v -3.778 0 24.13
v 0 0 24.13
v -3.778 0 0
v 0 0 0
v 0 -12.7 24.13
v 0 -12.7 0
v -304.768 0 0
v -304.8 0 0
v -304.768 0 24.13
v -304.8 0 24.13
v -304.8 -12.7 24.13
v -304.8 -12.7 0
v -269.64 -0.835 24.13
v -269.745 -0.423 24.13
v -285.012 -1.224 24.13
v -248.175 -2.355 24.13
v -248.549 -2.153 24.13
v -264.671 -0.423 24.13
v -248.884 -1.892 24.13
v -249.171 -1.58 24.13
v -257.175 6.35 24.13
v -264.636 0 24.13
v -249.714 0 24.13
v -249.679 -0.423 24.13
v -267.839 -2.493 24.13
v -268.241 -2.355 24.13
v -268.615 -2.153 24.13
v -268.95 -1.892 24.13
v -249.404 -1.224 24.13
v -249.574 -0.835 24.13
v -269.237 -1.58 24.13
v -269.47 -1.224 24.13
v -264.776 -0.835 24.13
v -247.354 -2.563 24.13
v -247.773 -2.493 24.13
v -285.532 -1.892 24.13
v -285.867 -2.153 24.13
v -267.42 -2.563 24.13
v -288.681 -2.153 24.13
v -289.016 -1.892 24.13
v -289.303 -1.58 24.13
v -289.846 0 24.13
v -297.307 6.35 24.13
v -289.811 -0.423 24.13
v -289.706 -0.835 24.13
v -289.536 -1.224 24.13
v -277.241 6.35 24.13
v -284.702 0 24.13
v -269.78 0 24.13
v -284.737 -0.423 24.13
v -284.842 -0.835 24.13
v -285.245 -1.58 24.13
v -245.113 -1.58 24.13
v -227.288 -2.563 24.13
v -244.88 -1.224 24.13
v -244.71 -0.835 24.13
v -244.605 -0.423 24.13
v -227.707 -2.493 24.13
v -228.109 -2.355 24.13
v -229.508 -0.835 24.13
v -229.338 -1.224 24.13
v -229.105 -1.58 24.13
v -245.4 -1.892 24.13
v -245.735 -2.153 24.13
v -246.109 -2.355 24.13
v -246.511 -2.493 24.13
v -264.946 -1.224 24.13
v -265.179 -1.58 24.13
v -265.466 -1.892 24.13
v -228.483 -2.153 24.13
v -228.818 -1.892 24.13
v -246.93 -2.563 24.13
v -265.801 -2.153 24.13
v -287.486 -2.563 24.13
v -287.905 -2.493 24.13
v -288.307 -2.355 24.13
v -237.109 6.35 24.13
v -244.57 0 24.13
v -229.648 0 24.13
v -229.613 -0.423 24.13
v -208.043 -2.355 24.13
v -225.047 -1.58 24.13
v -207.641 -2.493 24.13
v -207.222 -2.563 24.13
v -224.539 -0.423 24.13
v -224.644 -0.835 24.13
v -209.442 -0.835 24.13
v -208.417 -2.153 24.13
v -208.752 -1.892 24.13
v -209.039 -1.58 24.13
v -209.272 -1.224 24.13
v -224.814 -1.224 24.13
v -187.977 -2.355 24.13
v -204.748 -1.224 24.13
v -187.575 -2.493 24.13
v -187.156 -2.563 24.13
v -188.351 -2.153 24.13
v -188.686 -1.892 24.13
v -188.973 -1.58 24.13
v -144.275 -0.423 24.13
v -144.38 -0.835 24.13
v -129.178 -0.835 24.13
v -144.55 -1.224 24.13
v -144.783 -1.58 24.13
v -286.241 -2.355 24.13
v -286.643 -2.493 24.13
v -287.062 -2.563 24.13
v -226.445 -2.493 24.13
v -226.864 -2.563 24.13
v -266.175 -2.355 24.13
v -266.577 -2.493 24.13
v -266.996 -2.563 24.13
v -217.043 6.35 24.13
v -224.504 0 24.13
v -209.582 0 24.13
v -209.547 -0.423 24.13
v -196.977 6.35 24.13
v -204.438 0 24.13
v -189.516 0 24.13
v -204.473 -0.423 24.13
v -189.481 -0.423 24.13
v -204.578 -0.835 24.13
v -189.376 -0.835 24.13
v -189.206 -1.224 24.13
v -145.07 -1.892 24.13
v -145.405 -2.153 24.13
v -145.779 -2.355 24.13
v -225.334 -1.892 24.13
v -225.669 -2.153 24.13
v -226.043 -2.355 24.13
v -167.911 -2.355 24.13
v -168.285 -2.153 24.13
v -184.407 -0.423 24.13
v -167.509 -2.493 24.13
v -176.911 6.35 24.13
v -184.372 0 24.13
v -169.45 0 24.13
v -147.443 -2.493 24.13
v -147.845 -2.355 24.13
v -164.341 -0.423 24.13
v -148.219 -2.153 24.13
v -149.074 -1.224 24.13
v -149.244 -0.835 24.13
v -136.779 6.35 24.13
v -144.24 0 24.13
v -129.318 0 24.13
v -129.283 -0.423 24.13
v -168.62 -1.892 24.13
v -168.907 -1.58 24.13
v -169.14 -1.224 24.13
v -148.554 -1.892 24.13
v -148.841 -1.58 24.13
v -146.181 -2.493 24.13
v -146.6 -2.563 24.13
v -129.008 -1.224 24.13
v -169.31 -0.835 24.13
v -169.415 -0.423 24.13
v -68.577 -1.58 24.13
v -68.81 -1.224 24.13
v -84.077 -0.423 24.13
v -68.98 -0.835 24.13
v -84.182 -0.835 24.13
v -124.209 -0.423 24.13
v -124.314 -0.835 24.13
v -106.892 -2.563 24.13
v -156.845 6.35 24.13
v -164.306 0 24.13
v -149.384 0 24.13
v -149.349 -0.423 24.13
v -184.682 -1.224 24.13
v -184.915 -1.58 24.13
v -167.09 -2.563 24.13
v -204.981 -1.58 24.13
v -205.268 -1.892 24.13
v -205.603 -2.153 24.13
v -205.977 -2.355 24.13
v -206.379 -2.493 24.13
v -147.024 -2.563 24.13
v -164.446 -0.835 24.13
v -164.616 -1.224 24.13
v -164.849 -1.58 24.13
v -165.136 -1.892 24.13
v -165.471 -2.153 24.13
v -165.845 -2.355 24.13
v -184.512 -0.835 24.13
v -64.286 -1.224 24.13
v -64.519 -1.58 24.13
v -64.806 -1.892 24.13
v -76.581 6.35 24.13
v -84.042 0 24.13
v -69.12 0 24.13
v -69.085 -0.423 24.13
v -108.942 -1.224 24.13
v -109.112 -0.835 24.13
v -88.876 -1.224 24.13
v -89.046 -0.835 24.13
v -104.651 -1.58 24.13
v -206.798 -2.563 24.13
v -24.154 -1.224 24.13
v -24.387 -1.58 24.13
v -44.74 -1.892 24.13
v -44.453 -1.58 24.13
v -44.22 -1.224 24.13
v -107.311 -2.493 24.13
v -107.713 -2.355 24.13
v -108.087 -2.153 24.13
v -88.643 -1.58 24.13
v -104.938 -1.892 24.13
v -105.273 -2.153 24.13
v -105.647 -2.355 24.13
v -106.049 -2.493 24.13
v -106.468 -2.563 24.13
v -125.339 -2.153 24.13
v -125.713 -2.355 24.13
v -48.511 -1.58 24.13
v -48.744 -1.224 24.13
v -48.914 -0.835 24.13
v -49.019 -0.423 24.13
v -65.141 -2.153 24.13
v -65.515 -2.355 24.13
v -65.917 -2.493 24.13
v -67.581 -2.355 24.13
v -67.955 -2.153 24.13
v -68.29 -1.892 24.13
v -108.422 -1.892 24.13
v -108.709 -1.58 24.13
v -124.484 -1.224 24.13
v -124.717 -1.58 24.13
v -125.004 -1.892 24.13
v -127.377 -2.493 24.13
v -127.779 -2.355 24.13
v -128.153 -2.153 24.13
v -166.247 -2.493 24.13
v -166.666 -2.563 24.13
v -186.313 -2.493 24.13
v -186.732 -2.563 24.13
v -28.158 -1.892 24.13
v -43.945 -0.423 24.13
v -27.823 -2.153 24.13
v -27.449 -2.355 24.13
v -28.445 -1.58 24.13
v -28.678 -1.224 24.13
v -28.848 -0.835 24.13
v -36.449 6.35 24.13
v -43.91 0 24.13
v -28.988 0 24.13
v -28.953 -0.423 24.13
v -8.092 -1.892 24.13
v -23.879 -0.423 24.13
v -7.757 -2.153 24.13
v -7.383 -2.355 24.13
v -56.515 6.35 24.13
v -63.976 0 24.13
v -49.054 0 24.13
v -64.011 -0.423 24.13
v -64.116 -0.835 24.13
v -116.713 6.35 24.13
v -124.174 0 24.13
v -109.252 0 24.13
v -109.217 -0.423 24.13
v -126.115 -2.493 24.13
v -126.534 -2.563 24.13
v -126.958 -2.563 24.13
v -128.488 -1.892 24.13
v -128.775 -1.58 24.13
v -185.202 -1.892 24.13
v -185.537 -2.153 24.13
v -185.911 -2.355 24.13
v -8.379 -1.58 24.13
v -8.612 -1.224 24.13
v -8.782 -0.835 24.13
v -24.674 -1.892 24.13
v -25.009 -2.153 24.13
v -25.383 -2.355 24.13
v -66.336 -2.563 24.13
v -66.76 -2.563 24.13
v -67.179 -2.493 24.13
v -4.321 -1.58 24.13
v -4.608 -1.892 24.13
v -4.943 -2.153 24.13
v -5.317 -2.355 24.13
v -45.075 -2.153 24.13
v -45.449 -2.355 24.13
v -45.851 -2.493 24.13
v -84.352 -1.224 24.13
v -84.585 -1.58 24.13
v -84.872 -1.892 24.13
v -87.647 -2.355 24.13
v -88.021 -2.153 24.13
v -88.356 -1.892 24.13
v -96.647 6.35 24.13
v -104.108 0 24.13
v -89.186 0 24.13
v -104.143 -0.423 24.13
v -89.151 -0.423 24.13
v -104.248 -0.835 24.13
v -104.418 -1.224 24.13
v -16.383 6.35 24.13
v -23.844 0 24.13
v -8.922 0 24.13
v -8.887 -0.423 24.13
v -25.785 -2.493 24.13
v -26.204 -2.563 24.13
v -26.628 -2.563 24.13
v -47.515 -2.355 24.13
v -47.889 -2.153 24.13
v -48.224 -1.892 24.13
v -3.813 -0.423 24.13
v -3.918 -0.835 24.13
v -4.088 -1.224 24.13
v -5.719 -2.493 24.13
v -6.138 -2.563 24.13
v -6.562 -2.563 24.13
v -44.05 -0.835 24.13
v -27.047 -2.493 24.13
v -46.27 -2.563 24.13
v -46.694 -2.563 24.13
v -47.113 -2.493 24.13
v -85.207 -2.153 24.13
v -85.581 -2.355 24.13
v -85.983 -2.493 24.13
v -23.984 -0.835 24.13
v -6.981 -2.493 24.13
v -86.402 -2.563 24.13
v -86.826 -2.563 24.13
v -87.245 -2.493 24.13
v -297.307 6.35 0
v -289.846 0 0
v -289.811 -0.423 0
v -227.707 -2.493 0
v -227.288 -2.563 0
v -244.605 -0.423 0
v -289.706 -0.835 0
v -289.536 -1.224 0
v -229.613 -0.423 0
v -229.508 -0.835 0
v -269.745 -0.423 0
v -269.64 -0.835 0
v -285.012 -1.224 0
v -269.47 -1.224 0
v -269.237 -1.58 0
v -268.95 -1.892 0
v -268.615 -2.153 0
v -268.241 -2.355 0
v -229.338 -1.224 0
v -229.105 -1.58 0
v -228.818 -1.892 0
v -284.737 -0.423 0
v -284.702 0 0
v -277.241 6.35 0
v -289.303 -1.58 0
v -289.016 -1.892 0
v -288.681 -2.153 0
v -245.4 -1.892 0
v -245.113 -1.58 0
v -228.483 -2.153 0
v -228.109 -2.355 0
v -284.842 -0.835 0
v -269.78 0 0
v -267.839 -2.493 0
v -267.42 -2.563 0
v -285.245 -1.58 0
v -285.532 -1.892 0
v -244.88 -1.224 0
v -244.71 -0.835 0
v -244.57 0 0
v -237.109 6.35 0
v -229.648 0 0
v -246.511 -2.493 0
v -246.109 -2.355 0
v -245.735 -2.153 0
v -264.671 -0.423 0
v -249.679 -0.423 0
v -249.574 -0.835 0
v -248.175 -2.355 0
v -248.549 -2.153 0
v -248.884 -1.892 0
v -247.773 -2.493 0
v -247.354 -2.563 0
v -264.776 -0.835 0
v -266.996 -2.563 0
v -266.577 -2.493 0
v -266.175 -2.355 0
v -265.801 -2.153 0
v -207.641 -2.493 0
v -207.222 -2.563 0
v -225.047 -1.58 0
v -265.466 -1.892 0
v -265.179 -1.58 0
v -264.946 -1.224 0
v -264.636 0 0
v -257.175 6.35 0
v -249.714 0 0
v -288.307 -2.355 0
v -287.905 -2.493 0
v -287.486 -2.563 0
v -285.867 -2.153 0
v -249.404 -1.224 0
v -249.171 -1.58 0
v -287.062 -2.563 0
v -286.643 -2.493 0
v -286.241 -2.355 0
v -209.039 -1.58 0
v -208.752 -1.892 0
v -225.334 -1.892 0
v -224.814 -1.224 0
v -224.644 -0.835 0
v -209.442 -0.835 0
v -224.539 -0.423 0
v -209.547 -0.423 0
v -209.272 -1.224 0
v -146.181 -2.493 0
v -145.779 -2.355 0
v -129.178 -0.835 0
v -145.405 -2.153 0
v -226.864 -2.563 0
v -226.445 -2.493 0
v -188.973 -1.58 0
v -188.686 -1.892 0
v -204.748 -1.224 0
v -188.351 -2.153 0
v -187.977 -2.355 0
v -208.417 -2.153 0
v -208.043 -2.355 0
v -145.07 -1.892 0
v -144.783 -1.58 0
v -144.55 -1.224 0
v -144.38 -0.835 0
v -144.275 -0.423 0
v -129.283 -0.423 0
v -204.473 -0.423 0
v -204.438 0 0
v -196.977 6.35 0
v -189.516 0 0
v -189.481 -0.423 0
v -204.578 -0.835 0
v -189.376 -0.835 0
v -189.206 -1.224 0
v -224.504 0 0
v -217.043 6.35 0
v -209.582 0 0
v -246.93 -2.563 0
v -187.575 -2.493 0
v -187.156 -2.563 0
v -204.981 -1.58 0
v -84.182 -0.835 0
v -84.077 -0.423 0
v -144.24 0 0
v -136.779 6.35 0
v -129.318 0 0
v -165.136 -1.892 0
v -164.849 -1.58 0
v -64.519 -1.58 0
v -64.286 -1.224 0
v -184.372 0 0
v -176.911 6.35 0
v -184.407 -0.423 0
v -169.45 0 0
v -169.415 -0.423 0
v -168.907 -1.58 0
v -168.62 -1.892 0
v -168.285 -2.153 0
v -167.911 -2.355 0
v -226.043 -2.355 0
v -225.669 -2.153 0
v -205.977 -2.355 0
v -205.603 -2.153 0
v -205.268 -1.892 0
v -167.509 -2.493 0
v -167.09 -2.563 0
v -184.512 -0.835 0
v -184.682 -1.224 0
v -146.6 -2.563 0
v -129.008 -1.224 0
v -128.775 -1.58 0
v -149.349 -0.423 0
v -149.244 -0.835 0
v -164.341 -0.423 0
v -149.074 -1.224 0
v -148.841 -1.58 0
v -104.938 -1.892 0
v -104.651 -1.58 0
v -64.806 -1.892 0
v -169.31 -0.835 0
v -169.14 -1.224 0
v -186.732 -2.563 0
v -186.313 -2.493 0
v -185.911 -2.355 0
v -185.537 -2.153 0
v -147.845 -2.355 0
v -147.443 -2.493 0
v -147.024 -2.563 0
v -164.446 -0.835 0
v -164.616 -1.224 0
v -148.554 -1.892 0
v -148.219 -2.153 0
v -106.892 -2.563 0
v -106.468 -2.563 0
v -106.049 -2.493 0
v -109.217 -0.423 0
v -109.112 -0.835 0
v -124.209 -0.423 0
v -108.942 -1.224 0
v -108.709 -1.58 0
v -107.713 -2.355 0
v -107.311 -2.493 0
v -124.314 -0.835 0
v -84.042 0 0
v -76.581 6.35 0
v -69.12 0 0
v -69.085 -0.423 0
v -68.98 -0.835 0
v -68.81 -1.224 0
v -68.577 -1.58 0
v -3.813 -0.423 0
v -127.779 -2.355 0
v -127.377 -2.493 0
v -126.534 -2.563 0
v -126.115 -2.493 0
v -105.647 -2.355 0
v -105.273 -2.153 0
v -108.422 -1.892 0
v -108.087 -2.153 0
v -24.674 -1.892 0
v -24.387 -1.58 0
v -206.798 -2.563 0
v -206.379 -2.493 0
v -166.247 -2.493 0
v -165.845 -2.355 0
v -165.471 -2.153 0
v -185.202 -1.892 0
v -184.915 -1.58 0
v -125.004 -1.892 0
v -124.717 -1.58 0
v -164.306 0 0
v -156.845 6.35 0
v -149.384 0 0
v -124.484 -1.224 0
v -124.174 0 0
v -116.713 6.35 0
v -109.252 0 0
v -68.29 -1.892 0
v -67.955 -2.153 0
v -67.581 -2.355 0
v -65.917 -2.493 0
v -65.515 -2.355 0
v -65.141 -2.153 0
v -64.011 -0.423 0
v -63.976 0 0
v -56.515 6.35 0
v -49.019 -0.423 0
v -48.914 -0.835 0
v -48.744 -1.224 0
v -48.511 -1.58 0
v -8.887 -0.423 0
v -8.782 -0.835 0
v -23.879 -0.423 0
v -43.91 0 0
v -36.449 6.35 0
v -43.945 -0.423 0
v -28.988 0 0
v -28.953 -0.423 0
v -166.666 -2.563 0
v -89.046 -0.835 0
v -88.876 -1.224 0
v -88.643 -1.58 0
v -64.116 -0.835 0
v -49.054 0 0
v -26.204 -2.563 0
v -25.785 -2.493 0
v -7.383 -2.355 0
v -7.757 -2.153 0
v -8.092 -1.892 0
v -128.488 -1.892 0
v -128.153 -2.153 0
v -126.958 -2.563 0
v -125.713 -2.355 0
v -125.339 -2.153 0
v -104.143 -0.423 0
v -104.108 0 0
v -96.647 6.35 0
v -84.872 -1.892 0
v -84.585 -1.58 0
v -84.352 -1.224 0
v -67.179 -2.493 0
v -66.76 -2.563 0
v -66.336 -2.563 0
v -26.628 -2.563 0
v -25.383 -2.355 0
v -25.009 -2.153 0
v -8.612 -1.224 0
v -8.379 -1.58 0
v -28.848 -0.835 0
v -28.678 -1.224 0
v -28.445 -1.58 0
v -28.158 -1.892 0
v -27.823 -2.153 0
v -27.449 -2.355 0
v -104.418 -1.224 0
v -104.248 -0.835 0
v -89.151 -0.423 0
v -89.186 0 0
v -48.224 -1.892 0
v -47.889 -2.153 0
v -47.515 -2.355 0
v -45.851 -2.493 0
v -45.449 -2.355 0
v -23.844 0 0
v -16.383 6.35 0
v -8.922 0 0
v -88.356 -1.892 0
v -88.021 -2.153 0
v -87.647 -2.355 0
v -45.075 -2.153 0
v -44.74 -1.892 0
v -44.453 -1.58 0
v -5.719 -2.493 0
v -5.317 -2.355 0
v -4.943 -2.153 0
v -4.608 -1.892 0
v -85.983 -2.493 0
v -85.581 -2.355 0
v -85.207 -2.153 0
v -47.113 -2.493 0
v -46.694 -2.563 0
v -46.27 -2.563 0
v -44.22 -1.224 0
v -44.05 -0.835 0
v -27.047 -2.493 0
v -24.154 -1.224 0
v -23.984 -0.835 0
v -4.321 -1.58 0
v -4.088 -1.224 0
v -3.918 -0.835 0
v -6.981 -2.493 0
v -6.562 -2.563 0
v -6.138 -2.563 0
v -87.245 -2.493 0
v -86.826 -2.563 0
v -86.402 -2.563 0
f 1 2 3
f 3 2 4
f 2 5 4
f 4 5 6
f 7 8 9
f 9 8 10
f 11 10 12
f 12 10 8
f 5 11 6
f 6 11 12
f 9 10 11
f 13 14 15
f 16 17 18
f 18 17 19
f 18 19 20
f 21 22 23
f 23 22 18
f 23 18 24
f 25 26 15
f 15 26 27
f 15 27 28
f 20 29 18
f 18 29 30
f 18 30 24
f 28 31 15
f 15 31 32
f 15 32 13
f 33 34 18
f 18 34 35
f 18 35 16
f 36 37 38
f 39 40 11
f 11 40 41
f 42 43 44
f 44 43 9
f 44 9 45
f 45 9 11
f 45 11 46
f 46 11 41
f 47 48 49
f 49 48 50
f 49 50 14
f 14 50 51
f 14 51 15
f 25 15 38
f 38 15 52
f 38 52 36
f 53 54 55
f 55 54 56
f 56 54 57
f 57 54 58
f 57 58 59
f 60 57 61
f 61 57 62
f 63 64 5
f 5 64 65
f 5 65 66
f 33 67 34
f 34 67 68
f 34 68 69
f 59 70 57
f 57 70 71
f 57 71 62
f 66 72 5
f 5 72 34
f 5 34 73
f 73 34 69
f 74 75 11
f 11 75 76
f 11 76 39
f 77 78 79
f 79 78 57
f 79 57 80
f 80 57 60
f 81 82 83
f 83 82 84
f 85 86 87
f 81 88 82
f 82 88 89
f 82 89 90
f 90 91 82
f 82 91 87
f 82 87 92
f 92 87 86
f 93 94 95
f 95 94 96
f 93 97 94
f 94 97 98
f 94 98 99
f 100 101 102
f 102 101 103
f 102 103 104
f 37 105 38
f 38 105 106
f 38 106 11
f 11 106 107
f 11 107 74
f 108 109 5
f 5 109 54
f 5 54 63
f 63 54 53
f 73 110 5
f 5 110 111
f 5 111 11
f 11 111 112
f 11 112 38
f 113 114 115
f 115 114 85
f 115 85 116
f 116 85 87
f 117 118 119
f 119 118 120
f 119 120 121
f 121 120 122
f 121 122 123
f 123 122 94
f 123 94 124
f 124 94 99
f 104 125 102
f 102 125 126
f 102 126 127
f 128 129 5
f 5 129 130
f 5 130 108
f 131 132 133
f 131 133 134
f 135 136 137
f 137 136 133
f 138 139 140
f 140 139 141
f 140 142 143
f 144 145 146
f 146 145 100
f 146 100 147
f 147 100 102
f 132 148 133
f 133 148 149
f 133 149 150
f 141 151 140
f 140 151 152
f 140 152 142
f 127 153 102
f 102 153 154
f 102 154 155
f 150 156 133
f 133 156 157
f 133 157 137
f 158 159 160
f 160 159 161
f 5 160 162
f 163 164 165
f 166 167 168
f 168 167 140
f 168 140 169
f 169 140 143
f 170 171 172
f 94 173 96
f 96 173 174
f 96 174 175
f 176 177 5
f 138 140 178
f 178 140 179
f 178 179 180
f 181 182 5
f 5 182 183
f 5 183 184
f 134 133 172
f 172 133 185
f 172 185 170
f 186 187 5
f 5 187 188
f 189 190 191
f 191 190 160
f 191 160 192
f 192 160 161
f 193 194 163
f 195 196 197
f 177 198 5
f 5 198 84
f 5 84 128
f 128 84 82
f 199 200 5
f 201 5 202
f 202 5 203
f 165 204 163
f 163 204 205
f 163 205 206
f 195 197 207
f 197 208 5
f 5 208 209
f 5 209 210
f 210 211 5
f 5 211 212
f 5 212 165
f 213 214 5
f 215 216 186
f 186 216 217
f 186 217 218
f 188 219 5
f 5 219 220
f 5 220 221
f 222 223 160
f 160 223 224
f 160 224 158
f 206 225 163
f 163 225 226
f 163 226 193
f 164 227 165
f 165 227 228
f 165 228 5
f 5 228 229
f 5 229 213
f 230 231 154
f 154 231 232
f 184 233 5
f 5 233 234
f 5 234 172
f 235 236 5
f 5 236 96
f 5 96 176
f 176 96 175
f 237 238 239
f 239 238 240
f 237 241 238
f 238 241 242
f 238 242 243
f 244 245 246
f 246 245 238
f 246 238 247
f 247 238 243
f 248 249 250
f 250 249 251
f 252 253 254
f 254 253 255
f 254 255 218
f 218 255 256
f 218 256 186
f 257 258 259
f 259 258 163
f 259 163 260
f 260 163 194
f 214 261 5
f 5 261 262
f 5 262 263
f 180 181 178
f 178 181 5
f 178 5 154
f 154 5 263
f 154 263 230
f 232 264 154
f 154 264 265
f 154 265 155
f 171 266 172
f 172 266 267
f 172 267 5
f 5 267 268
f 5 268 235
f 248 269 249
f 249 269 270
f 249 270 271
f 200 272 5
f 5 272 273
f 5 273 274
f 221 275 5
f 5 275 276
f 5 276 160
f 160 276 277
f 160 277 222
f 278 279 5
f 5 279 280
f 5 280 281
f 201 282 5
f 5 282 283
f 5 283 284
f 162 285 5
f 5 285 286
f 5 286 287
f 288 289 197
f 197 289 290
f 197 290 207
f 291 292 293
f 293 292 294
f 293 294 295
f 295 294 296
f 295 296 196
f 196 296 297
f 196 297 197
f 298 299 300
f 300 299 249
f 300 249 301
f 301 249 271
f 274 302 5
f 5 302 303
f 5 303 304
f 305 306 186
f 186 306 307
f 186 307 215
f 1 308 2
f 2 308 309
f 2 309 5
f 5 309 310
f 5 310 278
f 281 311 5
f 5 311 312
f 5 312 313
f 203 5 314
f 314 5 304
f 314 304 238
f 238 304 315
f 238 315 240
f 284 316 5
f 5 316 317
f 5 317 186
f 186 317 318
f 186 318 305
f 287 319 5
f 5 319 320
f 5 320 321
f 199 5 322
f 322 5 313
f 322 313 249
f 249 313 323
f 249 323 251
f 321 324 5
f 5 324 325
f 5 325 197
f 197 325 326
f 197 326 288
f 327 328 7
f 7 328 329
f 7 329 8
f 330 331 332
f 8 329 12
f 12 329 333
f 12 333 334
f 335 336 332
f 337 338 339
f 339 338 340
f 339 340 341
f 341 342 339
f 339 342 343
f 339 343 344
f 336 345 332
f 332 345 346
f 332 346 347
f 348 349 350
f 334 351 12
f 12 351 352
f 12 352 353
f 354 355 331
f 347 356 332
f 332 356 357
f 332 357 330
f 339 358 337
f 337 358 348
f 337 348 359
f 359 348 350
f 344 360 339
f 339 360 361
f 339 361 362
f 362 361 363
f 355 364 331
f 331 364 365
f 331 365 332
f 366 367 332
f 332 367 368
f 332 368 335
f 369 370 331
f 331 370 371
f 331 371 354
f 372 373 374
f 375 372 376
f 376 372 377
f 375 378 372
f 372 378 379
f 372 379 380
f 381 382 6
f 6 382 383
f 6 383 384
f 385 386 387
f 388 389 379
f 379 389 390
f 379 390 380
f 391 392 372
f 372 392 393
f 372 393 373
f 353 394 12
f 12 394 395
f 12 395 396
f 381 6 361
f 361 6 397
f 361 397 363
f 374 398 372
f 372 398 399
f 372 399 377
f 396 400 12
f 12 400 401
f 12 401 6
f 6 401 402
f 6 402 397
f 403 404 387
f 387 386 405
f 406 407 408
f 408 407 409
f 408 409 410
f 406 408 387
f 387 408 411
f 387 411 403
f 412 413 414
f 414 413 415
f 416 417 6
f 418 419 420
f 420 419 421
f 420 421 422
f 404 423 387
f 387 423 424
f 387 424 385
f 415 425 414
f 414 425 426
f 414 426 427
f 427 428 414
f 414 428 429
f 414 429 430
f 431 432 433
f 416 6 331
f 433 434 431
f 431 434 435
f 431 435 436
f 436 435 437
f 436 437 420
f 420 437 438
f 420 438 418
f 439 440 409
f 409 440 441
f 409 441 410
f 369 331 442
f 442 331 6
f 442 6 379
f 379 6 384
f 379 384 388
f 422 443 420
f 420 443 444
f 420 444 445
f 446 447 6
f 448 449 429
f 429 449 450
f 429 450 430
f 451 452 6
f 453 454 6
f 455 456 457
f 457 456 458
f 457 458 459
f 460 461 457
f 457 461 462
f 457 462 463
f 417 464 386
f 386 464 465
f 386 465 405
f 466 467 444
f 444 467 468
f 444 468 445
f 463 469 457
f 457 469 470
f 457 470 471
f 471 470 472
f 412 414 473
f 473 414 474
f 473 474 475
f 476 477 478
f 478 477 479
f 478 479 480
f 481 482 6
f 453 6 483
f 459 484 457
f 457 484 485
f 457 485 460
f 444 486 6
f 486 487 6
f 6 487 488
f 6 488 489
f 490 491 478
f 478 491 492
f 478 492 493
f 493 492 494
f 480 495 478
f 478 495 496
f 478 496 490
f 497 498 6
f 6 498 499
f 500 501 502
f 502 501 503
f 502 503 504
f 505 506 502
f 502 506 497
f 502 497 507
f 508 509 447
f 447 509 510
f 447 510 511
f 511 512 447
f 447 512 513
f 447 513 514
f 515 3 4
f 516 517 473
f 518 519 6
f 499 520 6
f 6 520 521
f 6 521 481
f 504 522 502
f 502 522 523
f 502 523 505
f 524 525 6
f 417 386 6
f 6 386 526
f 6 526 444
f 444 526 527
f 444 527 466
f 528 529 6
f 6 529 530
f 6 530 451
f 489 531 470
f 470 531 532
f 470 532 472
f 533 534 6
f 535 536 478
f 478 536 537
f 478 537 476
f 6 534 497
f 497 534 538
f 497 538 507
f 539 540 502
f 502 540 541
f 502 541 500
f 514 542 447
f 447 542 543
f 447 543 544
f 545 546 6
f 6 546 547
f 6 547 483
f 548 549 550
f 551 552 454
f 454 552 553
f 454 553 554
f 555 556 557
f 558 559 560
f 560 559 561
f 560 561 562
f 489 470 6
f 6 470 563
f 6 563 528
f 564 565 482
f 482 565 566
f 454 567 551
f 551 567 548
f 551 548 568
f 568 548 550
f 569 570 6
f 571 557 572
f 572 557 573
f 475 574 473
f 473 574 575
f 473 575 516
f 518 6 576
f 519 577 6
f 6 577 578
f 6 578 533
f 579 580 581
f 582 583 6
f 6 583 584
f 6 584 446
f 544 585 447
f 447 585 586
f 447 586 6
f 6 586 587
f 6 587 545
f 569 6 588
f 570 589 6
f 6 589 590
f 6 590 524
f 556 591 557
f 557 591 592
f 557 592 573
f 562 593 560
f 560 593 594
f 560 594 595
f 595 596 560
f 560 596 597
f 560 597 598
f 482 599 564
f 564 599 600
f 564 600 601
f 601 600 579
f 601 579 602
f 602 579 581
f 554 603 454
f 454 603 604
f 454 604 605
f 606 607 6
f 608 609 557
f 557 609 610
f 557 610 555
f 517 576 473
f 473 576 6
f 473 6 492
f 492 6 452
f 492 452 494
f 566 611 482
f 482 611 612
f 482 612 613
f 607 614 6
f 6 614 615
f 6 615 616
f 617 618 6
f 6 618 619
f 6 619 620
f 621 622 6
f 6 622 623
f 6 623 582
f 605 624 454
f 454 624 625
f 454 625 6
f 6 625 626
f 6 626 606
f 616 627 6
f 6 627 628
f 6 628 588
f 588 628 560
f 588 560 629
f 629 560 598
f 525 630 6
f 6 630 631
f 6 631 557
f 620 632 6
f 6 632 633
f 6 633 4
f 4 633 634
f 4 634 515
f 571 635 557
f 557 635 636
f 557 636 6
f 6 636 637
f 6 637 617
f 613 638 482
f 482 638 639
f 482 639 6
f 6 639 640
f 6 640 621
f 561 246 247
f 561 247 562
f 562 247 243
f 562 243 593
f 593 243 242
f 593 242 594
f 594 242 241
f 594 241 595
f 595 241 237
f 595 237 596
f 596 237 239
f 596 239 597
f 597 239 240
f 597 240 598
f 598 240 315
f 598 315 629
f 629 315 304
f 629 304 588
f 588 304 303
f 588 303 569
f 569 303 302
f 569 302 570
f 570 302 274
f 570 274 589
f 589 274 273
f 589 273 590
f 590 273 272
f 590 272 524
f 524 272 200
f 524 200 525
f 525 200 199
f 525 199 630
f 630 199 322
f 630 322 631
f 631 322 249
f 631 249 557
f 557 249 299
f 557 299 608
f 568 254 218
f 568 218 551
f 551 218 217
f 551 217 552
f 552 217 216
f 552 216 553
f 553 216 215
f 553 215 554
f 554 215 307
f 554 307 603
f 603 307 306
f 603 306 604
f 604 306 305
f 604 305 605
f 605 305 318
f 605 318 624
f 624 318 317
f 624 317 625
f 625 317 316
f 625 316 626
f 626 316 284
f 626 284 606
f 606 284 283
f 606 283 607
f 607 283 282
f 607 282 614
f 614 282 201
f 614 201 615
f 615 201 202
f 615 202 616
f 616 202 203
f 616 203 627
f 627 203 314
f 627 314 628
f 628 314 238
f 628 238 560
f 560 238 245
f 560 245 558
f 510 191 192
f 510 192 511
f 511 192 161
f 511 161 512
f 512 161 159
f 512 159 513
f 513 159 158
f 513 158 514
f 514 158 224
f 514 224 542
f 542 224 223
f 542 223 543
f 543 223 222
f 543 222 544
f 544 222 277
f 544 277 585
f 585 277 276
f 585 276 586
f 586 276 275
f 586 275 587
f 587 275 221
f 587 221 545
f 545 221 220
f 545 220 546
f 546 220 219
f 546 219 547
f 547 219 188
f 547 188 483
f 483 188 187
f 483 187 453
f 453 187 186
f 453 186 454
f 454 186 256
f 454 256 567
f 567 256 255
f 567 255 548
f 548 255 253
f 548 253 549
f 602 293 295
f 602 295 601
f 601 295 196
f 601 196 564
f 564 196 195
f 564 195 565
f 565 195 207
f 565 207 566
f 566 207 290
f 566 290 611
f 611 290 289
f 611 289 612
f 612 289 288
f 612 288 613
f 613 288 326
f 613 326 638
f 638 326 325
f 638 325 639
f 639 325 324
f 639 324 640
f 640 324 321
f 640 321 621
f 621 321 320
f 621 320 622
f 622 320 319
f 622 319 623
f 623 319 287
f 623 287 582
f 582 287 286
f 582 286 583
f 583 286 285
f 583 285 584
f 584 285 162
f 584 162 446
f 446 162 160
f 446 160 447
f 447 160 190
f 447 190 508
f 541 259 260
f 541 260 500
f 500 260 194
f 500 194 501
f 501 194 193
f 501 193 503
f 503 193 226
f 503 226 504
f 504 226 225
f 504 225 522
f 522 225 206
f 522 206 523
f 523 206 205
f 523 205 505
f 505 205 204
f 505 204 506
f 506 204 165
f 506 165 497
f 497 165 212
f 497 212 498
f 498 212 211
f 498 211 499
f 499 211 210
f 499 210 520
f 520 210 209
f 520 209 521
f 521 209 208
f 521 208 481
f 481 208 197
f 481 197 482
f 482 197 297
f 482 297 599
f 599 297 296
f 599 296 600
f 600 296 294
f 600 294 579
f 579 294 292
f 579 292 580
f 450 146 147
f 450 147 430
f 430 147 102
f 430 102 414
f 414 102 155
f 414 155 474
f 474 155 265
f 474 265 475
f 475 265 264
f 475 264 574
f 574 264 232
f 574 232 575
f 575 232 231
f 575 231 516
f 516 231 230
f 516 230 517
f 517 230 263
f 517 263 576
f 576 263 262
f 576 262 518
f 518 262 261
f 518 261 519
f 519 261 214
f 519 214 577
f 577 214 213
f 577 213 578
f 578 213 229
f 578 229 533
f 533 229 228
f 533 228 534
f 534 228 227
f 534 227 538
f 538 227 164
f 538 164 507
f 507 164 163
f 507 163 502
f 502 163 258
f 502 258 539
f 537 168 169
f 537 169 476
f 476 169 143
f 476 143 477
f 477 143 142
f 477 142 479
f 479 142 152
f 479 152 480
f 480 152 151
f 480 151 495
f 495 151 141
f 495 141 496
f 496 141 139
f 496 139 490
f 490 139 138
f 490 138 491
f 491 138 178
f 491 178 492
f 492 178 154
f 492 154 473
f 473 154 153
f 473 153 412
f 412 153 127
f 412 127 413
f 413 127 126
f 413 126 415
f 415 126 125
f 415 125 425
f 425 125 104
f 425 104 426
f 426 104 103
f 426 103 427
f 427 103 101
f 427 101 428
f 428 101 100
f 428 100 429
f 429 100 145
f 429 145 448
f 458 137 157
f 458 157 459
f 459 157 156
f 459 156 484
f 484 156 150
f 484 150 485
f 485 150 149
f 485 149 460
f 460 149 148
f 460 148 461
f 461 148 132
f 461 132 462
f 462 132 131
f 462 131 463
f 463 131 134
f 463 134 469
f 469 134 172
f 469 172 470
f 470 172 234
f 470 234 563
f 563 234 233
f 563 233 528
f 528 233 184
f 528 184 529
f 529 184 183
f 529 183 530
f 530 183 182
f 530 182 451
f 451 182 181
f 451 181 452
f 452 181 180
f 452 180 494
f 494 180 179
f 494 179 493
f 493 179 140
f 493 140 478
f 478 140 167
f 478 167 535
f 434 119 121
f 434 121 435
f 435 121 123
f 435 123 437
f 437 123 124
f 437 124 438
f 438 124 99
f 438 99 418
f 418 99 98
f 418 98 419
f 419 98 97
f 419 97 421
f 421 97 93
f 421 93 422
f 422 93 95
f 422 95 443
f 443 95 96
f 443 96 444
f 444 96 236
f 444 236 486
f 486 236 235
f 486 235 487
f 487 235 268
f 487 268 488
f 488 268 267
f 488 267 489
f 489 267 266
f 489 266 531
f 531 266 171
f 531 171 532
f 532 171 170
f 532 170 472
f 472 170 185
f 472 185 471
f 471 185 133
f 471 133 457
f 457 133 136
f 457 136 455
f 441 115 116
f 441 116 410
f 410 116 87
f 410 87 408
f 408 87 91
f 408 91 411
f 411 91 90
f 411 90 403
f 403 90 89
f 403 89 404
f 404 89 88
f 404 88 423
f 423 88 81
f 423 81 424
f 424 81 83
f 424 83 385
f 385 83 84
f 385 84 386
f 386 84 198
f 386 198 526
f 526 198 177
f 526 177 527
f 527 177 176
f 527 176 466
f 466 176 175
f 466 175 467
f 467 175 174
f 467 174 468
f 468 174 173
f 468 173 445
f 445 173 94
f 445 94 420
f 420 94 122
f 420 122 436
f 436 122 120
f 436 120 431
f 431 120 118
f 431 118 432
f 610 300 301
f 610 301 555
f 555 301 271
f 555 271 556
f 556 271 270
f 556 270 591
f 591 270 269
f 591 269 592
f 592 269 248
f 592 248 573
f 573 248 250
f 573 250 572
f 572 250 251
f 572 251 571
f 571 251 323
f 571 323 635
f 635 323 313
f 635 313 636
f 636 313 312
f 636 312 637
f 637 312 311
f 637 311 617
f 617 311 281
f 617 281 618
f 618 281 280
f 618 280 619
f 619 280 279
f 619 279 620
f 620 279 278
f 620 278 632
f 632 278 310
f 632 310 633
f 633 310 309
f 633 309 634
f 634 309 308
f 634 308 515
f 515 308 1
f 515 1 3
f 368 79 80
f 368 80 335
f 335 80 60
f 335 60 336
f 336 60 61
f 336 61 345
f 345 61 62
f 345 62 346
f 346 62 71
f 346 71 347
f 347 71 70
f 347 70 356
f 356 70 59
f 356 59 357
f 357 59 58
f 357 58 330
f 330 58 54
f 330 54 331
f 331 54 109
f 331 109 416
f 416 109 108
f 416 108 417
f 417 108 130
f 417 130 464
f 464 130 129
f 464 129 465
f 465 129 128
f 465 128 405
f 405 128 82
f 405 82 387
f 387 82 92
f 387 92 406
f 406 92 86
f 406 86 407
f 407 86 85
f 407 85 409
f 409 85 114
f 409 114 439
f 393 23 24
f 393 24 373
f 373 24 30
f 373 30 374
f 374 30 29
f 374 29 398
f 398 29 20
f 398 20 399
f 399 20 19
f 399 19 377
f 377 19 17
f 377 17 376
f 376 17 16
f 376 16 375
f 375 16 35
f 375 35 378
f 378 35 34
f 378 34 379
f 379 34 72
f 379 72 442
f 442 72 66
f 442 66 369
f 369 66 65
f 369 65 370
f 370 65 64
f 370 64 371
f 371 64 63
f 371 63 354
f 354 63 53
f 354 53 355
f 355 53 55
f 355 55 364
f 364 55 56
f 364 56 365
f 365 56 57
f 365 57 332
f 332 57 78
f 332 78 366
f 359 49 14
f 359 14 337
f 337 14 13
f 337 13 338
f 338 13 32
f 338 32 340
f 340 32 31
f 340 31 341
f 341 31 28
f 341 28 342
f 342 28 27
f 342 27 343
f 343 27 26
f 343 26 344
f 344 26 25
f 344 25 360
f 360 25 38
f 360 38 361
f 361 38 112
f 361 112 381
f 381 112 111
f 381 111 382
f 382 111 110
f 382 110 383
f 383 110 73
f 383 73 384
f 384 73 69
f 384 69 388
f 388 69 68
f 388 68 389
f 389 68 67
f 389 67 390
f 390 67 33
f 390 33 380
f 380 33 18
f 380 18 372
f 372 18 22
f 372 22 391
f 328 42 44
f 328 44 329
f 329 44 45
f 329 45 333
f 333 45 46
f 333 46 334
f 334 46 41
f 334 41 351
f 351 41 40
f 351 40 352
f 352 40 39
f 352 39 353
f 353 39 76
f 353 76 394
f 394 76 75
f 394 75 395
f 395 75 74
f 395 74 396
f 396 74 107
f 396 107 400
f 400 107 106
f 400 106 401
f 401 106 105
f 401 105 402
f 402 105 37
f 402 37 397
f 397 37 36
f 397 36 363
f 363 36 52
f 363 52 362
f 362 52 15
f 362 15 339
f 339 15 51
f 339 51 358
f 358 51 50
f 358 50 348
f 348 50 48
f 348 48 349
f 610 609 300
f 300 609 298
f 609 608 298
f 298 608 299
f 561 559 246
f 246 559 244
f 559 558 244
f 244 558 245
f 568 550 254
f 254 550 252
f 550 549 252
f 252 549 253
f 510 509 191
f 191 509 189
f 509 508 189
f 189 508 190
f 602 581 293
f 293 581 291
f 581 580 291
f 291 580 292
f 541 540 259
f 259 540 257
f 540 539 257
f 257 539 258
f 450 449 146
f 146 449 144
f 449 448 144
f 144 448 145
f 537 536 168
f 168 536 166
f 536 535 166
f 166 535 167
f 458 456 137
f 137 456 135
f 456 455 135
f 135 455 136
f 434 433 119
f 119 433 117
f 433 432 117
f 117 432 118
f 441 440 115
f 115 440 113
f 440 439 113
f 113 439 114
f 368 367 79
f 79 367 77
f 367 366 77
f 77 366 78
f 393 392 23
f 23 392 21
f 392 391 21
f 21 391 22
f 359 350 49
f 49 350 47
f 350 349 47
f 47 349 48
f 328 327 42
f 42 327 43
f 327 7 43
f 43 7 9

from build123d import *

# Parameters (mm, degrees)
SKETCH1_W           = 304.8
SKETCH1_H           = 12.7
BOSS_EXTRUDE1_DEPTH = 24.13
SKETCH3_R           = 2.57175
CUT_EXTRUDE1_DEPTH  = 39.624
BOSS_EXTRUDE2_DEPTH = 24.13


with BuildPart() as part:
    # Sketch1 → Boss-Extrude1 (new body)
    with BuildSketch(Plane.XY):
        with Locations((-152.4, -6.35)):
            Rectangle(SKETCH1_W, SKETCH1_H)
    extrude(amount=BOSS_EXTRUDE1_DEPTH)

    # Sketch3 → Cut-Extrude1 (cut)
    with BuildSketch(Plane.XY.offset(24.13)):
        with Locations((-26.416, 0)):
            Circle(SKETCH3_R)
        with Locations((-46.482, 0)):
            Circle(SKETCH3_R)
        with Locations((-66.548, 0)):
            Circle(SKETCH3_R)
        with Locations((-86.614, 0)):
            Circle(SKETCH3_R)
        with Locations((-106.68, 0)):
            Circle(SKETCH3_R)
        with Locations((-126.746, 0)):
            Circle(SKETCH3_R)
        with Locations((-146.812, 0)):
            Circle(SKETCH3_R)
        with Locations((-166.878, 0)):
            Circle(SKETCH3_R)
        with Locations((-186.944, 0)):
            Circle(SKETCH3_R)
        with Locations((-6.35, 0)):
            Circle(SKETCH3_R)
        with Locations((-207.01, 0)):
            Circle(SKETCH3_R)
        with Locations((-227.076, 0)):
            Circle(SKETCH3_R)
        with Locations((-247.142, 0)):
            Circle(SKETCH3_R)
        with Locations((-267.208, 0)):
            Circle(SKETCH3_R)
        with Locations((-287.274, 0)):
            Circle(SKETCH3_R)
    extrude(amount=-CUT_EXTRUDE1_DEPTH, mode=Mode.SUBTRACT)

    # Sketch4 → Boss-Extrude2 (add)
    with BuildSketch(Plane(origin=(0, 0, 0), x_dir=(-1, 0, 0), z_dir=(0, 0, -1))):
        Polygon((16.383, 6.35), (8.92175, 0), (23.84425, 0), align=None)
        Polygon((36.449, 6.35), (28.98775, 0), (43.91025, 0), align=None)
        Polygon((63.97625, 0), (56.515, 6.35), (49.05375, 0), align=None)
        Polygon((84.04225, 0), (76.581, 6.35), (69.11975, 0), align=None)
        Polygon((104.10825, 0), (96.647, 6.35), (89.18575, 0), align=None)
        Polygon((124.17425, 0), (116.713, 6.35), (109.25175, 0), align=None)
        Polygon((144.24025, 0), (136.779, 6.35), (129.31775, 0), align=None)
        Polygon((164.30625, 0), (156.845, 6.35), (149.38375, 0), align=None)
        Polygon((184.37225, 0), (176.911, 6.35), (169.44975, 0), align=None)
        Polygon((204.43825, 0), (196.977, 6.35), (189.51575, 0), align=None)
        Polygon((224.50425, 0), (217.043, 6.35), (209.58175, 0), align=None)
        Polygon((244.57025, 0), (237.109, 6.35), (229.64775, 0), align=None)
        Polygon((264.63625, 0), (257.175, 6.35), (249.71375, 0), align=None)
        Polygon((284.70225, 0), (277.241, 6.35), (269.77975, 0), align=None)
        Polygon((304.76825, 0), (297.307, 6.35), (289.84575, 0), align=None)
    extrude(amount=-BOSS_EXTRUDE2_DEPTH)


solid = part.part
